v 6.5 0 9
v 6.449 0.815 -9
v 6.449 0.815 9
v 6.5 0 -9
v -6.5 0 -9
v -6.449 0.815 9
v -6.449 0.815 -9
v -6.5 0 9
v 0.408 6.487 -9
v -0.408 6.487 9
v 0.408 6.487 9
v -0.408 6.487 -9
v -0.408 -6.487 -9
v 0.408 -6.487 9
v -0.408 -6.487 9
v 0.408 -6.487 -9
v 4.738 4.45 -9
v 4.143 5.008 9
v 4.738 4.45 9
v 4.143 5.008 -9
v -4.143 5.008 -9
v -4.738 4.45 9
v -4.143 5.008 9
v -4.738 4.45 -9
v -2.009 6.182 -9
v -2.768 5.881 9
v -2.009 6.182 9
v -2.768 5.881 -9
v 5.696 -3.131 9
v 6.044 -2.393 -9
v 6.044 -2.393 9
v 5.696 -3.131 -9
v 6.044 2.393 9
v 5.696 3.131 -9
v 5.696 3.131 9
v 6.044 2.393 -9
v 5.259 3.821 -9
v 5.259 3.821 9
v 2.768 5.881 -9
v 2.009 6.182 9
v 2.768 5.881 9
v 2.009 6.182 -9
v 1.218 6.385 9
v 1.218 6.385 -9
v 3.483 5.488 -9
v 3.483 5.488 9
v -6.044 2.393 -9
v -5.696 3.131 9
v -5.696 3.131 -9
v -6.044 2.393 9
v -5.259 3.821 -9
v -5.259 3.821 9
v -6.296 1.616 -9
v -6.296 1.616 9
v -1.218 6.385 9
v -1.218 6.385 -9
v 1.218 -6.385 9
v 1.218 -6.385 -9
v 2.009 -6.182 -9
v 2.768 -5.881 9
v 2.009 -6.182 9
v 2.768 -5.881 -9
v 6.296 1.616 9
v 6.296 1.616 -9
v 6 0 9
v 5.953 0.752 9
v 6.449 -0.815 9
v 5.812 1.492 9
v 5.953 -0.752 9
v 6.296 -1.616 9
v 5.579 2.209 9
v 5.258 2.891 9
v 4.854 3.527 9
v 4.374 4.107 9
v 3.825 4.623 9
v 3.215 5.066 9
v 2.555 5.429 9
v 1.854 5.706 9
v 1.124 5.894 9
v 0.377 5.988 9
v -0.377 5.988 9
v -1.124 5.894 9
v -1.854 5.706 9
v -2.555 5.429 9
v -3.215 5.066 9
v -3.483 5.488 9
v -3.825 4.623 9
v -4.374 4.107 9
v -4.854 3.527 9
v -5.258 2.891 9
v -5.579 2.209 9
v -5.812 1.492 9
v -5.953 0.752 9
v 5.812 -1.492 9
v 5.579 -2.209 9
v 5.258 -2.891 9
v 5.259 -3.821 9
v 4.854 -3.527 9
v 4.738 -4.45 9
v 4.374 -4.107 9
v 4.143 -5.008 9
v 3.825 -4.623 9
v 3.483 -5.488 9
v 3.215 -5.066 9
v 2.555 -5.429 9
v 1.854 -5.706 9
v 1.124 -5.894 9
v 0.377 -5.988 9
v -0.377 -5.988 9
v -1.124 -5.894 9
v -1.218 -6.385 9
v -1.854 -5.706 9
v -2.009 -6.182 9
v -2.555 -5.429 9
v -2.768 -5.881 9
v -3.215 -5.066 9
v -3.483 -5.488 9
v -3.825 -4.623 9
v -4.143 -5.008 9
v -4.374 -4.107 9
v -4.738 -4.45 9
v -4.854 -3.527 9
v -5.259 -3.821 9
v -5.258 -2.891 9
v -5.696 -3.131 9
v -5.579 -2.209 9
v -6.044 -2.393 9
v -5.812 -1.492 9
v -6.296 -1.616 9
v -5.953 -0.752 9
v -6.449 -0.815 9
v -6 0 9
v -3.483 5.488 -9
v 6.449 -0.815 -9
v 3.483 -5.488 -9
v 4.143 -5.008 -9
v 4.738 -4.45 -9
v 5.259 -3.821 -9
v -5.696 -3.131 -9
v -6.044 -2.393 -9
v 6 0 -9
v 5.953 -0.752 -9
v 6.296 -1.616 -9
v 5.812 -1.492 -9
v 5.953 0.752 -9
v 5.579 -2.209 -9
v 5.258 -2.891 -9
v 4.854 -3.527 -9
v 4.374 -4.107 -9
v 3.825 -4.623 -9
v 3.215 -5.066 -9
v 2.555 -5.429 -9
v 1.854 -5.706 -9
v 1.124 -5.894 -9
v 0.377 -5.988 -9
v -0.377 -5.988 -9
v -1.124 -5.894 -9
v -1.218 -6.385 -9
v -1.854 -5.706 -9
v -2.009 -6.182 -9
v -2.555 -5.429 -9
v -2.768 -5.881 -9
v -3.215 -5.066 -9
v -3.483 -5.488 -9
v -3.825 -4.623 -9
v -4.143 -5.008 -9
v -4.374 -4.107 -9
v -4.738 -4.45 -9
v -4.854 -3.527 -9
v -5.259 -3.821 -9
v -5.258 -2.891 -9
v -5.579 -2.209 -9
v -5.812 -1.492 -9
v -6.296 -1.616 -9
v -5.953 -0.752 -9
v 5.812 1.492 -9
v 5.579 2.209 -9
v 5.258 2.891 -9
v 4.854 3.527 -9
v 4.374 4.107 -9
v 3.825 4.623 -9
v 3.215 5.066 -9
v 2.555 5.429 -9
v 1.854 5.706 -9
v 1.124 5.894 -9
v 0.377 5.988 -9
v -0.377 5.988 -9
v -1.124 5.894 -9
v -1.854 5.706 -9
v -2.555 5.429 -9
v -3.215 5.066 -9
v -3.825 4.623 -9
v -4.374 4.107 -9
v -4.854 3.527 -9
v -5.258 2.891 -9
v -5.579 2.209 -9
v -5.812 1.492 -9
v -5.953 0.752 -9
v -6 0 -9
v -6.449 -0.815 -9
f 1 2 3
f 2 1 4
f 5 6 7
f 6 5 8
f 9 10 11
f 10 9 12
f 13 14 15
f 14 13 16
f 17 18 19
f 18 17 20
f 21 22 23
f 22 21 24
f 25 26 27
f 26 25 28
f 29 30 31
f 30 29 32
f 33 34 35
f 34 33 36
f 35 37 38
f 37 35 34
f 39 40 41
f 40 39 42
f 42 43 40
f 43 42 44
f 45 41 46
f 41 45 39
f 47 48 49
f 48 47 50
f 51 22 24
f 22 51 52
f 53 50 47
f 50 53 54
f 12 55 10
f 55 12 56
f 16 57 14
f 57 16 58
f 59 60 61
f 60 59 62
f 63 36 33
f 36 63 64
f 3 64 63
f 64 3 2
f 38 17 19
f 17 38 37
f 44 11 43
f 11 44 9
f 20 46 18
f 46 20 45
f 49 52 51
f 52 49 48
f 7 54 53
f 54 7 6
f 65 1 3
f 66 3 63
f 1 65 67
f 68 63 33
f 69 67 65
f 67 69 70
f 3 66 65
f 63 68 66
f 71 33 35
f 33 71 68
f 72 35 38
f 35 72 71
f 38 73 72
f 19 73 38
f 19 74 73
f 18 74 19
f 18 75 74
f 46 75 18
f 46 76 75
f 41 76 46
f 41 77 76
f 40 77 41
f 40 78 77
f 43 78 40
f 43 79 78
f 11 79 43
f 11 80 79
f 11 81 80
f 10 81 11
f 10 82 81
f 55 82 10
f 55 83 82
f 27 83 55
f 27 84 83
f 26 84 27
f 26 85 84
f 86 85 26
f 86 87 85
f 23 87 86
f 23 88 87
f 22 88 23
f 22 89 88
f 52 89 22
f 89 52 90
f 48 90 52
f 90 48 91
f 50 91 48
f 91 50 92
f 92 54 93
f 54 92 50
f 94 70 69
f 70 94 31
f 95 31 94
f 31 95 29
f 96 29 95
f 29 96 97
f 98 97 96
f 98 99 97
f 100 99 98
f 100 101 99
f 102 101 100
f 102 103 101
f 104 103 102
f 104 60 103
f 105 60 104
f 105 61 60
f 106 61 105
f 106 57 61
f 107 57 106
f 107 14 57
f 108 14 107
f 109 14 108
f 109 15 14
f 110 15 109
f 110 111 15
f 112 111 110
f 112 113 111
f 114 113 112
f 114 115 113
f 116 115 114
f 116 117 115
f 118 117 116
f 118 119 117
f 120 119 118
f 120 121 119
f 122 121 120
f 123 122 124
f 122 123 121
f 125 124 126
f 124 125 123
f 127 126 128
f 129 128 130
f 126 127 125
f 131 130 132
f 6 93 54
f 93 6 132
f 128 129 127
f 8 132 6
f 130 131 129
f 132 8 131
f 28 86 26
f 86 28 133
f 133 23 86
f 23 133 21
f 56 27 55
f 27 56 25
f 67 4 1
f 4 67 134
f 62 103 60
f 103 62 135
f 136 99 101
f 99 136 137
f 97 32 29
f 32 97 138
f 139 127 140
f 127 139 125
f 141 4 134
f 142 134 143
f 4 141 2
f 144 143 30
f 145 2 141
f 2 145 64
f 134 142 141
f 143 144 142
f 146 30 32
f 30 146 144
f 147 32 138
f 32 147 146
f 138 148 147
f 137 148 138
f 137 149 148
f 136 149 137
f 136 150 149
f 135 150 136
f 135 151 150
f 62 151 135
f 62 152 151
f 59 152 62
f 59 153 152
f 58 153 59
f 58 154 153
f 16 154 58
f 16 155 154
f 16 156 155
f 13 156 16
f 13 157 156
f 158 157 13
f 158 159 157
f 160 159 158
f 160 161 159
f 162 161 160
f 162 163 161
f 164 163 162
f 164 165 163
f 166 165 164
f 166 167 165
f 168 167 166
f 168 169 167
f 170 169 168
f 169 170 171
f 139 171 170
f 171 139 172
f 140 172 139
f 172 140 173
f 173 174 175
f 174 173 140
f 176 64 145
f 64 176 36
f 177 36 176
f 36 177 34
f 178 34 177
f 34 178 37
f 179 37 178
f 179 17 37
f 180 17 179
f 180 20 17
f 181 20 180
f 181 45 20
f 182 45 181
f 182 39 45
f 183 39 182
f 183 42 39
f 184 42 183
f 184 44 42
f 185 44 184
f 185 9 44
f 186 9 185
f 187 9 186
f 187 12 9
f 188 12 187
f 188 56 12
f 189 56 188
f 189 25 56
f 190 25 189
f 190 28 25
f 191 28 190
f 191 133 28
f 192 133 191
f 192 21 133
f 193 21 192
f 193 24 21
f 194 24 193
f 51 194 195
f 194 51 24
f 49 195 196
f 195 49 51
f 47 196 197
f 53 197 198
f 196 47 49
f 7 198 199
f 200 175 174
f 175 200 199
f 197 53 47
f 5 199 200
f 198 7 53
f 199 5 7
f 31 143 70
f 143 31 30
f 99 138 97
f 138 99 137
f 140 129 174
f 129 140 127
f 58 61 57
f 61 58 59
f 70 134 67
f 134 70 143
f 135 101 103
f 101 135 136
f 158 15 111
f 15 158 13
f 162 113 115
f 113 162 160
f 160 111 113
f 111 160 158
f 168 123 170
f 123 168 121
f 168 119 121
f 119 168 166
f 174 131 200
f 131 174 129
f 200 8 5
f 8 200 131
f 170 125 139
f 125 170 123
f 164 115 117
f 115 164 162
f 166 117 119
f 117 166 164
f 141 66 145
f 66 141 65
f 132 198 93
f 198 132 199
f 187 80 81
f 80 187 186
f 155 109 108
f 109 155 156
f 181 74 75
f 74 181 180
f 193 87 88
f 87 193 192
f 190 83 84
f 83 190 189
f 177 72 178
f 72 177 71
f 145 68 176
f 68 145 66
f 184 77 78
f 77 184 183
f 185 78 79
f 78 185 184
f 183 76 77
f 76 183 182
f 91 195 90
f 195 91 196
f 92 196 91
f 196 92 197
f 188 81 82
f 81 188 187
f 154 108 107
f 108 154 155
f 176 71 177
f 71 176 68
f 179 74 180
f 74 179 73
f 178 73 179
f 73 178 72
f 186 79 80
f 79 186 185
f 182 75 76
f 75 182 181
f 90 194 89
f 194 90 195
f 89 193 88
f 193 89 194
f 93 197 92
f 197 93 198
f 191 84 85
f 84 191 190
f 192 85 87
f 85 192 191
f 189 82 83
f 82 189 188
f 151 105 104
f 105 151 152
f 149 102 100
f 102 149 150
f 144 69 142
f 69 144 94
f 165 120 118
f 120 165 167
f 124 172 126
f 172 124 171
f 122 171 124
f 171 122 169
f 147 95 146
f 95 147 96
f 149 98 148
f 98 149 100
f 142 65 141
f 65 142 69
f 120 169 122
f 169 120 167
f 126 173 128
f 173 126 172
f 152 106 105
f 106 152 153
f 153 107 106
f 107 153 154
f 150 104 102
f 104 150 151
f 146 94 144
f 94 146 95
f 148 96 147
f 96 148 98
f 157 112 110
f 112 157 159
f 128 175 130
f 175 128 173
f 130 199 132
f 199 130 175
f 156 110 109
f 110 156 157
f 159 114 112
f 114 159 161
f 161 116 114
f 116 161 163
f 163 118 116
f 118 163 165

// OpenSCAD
$fn = 50;


difference() {
	union() {
		translate(v = [0, 0, -9.0000000000]) {
			cylinder(h = 18, r = 6.5000000000);
		}
	}
	union() {
		translate(v = [0, 0, -100.0000000000]) {
			cylinder(h = 200, r = 6);
		}
	}
}
